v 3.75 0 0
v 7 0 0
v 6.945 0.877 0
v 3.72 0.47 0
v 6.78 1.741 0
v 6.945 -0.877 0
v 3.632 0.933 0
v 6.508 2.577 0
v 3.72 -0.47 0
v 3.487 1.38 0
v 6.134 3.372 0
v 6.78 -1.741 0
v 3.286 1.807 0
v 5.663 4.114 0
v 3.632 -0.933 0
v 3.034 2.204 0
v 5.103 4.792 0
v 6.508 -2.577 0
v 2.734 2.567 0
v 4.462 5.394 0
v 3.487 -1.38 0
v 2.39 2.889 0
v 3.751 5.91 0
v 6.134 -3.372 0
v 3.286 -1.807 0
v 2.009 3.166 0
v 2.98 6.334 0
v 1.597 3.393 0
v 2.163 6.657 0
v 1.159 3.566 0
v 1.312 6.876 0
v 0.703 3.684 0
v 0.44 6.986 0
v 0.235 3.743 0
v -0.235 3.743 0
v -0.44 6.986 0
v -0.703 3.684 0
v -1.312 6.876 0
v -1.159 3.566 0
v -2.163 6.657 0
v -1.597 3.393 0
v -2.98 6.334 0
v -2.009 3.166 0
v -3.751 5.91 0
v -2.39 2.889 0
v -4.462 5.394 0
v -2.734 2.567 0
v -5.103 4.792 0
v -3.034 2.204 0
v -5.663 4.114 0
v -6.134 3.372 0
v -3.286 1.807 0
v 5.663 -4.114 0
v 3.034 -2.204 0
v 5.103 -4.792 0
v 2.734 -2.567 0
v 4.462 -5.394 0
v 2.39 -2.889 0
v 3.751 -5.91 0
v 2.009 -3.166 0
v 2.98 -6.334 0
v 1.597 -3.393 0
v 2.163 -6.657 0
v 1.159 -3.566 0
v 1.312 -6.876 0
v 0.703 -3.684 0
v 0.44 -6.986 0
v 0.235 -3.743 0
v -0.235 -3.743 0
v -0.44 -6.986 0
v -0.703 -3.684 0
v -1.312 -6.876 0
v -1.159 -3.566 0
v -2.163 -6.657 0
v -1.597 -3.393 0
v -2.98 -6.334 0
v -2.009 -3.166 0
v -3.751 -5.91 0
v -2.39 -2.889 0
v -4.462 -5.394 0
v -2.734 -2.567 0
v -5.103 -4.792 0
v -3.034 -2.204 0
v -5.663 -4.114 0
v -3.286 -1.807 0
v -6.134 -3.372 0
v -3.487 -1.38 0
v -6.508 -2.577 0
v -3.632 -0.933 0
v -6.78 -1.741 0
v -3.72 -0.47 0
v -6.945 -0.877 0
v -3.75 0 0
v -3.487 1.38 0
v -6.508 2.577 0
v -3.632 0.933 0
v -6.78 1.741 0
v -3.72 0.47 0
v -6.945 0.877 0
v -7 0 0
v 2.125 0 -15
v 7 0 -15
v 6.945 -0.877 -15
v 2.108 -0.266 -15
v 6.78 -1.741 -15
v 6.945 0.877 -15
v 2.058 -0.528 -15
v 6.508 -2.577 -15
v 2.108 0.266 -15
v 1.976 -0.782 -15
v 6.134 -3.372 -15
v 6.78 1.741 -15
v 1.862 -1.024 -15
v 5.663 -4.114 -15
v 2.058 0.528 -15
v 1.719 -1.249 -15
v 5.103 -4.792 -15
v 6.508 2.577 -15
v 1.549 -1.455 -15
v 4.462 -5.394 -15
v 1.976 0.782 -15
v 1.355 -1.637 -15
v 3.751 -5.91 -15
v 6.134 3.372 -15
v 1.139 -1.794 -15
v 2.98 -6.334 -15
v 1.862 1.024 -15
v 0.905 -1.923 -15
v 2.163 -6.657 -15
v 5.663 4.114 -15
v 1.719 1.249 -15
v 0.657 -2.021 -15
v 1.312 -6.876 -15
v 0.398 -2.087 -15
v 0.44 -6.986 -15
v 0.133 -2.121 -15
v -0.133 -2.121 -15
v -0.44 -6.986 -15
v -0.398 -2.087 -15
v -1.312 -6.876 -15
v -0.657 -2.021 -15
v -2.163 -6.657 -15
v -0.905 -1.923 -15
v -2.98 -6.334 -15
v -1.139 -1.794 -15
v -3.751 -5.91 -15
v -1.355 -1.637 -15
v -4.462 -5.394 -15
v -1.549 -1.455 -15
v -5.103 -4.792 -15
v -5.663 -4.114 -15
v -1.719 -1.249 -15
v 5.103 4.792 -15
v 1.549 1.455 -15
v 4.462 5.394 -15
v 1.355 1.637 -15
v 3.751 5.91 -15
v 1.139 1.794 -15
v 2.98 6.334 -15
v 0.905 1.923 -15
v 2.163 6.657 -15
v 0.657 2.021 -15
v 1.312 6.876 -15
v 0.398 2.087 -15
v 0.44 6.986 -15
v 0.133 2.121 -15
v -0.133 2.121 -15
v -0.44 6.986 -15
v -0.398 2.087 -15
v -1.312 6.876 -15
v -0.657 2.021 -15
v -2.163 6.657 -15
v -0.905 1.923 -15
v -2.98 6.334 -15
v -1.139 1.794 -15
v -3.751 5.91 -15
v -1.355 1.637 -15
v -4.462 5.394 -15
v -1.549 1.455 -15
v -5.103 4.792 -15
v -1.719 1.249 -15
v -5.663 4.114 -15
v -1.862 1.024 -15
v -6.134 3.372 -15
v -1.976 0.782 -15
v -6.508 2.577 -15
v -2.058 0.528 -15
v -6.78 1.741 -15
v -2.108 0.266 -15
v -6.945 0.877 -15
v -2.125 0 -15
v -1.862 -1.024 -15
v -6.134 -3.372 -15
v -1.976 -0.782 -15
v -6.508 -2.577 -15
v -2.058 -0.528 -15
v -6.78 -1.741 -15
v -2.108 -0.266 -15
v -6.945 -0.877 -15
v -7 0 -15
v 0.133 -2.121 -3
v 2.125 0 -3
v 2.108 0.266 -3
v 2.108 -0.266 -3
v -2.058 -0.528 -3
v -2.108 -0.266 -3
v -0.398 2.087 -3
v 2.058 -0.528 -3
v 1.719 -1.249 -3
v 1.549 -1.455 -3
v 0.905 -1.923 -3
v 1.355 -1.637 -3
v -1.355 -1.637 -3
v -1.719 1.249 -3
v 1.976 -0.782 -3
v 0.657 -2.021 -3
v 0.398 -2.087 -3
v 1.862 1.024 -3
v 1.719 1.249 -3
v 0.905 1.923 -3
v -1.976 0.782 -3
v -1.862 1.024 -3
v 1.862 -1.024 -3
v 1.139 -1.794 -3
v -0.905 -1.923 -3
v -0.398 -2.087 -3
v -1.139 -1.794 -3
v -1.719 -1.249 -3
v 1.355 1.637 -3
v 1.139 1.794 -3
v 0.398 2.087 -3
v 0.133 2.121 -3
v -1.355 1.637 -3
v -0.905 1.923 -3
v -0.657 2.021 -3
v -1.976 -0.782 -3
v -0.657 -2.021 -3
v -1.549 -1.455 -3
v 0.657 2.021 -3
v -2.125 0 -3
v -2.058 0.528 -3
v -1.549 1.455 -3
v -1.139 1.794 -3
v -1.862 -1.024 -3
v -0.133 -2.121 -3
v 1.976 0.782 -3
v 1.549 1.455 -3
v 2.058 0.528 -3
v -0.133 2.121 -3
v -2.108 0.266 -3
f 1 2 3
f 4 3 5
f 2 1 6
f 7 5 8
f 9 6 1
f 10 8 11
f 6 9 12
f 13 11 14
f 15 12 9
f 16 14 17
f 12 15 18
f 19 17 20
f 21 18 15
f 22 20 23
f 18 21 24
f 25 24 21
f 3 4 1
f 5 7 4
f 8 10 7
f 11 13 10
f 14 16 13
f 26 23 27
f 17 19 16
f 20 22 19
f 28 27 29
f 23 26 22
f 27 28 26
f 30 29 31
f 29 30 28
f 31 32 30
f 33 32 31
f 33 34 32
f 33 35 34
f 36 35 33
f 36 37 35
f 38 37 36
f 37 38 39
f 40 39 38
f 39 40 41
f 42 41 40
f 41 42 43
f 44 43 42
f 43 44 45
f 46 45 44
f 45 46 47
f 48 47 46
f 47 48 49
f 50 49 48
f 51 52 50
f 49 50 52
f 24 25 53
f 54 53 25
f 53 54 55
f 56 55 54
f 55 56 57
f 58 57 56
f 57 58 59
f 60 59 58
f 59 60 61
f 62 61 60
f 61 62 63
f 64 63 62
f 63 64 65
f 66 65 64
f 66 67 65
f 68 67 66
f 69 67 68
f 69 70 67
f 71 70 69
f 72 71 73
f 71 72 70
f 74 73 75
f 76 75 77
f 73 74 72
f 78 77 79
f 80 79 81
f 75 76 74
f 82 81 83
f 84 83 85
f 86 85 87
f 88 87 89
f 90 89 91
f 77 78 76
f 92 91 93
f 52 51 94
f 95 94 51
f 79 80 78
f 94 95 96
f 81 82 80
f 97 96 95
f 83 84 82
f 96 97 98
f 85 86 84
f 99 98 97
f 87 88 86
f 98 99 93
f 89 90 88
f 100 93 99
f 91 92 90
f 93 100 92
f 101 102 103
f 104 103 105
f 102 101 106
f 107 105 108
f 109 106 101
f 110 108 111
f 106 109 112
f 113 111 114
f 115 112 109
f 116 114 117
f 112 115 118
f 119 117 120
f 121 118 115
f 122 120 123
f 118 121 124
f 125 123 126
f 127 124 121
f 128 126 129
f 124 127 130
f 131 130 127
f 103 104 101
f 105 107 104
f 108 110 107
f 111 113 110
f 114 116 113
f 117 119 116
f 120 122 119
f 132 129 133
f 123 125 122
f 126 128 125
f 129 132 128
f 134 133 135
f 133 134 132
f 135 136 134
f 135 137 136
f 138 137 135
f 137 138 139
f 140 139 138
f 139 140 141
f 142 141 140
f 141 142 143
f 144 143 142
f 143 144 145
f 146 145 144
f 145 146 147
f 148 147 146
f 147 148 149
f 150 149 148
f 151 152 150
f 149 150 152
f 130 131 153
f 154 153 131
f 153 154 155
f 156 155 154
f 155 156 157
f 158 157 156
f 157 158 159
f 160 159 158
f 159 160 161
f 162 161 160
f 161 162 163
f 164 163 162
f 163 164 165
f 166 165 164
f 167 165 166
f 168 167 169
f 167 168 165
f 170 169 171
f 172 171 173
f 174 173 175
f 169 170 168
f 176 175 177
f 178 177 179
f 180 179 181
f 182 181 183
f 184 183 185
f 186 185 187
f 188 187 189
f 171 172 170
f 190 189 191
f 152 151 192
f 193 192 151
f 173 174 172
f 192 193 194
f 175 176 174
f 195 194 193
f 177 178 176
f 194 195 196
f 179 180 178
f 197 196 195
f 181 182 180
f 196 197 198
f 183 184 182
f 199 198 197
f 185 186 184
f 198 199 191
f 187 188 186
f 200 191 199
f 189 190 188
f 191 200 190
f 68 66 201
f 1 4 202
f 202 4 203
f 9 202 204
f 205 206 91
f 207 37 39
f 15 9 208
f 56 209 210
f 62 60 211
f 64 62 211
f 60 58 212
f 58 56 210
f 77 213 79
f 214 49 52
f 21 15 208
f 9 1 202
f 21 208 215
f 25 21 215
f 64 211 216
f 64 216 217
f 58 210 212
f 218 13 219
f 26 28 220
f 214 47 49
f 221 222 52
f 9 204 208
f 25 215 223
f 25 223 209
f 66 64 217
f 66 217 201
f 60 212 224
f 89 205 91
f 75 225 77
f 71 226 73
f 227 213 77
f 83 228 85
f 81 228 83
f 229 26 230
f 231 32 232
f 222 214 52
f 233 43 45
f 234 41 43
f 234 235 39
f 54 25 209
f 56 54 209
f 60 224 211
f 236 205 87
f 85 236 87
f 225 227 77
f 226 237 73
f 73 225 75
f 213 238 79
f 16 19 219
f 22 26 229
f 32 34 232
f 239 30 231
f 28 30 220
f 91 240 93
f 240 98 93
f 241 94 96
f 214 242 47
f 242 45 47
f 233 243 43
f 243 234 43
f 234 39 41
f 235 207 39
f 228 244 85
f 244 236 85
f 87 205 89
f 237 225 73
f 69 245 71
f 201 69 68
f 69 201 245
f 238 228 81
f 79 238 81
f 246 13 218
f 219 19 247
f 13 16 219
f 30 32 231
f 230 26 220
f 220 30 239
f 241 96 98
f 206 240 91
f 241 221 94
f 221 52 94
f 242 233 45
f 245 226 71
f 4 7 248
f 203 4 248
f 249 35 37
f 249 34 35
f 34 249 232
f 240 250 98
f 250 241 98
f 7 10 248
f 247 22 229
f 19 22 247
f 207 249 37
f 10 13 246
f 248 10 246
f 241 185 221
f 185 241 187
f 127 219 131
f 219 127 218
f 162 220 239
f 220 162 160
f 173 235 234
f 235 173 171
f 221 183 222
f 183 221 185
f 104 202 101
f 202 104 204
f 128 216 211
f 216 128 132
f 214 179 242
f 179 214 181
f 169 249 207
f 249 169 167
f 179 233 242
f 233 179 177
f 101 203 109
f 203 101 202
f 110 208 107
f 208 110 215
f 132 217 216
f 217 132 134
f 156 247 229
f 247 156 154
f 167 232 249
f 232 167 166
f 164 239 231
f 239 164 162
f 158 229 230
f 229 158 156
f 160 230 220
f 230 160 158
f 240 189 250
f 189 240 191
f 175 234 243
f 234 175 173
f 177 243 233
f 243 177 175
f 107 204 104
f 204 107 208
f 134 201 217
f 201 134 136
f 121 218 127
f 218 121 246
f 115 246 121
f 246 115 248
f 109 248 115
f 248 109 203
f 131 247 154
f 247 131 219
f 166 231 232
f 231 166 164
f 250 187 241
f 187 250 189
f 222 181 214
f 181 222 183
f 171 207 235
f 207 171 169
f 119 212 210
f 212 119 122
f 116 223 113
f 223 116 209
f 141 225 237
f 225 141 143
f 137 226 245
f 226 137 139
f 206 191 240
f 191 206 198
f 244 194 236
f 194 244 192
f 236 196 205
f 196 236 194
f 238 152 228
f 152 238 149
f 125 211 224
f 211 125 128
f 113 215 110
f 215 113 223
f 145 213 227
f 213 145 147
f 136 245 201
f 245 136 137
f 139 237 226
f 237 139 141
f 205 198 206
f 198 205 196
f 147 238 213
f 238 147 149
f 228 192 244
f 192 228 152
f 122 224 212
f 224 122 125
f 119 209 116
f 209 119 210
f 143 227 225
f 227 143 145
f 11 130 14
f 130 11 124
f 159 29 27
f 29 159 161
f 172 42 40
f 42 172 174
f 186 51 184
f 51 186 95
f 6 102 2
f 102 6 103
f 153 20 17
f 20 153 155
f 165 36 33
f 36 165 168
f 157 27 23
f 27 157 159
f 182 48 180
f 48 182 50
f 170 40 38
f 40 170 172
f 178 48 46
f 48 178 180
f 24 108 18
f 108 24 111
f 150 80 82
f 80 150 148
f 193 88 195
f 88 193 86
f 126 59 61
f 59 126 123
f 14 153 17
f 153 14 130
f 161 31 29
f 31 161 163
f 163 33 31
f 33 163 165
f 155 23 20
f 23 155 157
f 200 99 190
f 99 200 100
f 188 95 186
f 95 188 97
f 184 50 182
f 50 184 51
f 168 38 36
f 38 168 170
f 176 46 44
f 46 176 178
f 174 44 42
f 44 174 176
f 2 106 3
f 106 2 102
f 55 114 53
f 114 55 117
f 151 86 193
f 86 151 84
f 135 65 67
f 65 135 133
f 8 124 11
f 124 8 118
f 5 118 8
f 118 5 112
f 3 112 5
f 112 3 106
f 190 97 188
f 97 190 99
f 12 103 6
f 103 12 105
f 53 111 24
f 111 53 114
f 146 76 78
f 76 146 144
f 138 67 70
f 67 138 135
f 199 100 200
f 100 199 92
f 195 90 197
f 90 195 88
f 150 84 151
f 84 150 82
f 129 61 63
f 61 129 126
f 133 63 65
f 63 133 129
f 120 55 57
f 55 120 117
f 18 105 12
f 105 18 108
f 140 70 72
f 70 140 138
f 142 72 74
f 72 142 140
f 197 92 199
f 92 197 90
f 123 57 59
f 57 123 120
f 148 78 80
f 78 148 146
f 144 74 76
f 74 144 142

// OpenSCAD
$fn = 50;


difference() {
	union() {
		translate(v = [0, 0, -15.0000000000]) {
			cylinder(h = 15, r = 7.0000000000);
		}
		cylinder(h = 0, r = 10.0000000000);
	}
	union() {
		translate(v = [0, 0, 0]) {
			rotate(a = [0, 0, 0]) {
				difference() {
					union() {
						#translate(v = [0, 0, -15.0000000000]) {
							cylinder(h = 15, r = 2.0000000000);
						}
						#translate(v = [0, 0, -3]) {
							cylinder(h = 3, r1 = 2.1250000000, r2 = 3.7500000000);
						}
						#translate(v = [0, 0, -15.0000000000]) {
							cylinder(h = 15, r = 2.1250000000);
						}
						#translate(v = [0, 0, -15.0000000000]) {
							cylinder(h = 15, r = 2.0000000000);
						}
					}
					union();
				}
			}
		}
	}
}
